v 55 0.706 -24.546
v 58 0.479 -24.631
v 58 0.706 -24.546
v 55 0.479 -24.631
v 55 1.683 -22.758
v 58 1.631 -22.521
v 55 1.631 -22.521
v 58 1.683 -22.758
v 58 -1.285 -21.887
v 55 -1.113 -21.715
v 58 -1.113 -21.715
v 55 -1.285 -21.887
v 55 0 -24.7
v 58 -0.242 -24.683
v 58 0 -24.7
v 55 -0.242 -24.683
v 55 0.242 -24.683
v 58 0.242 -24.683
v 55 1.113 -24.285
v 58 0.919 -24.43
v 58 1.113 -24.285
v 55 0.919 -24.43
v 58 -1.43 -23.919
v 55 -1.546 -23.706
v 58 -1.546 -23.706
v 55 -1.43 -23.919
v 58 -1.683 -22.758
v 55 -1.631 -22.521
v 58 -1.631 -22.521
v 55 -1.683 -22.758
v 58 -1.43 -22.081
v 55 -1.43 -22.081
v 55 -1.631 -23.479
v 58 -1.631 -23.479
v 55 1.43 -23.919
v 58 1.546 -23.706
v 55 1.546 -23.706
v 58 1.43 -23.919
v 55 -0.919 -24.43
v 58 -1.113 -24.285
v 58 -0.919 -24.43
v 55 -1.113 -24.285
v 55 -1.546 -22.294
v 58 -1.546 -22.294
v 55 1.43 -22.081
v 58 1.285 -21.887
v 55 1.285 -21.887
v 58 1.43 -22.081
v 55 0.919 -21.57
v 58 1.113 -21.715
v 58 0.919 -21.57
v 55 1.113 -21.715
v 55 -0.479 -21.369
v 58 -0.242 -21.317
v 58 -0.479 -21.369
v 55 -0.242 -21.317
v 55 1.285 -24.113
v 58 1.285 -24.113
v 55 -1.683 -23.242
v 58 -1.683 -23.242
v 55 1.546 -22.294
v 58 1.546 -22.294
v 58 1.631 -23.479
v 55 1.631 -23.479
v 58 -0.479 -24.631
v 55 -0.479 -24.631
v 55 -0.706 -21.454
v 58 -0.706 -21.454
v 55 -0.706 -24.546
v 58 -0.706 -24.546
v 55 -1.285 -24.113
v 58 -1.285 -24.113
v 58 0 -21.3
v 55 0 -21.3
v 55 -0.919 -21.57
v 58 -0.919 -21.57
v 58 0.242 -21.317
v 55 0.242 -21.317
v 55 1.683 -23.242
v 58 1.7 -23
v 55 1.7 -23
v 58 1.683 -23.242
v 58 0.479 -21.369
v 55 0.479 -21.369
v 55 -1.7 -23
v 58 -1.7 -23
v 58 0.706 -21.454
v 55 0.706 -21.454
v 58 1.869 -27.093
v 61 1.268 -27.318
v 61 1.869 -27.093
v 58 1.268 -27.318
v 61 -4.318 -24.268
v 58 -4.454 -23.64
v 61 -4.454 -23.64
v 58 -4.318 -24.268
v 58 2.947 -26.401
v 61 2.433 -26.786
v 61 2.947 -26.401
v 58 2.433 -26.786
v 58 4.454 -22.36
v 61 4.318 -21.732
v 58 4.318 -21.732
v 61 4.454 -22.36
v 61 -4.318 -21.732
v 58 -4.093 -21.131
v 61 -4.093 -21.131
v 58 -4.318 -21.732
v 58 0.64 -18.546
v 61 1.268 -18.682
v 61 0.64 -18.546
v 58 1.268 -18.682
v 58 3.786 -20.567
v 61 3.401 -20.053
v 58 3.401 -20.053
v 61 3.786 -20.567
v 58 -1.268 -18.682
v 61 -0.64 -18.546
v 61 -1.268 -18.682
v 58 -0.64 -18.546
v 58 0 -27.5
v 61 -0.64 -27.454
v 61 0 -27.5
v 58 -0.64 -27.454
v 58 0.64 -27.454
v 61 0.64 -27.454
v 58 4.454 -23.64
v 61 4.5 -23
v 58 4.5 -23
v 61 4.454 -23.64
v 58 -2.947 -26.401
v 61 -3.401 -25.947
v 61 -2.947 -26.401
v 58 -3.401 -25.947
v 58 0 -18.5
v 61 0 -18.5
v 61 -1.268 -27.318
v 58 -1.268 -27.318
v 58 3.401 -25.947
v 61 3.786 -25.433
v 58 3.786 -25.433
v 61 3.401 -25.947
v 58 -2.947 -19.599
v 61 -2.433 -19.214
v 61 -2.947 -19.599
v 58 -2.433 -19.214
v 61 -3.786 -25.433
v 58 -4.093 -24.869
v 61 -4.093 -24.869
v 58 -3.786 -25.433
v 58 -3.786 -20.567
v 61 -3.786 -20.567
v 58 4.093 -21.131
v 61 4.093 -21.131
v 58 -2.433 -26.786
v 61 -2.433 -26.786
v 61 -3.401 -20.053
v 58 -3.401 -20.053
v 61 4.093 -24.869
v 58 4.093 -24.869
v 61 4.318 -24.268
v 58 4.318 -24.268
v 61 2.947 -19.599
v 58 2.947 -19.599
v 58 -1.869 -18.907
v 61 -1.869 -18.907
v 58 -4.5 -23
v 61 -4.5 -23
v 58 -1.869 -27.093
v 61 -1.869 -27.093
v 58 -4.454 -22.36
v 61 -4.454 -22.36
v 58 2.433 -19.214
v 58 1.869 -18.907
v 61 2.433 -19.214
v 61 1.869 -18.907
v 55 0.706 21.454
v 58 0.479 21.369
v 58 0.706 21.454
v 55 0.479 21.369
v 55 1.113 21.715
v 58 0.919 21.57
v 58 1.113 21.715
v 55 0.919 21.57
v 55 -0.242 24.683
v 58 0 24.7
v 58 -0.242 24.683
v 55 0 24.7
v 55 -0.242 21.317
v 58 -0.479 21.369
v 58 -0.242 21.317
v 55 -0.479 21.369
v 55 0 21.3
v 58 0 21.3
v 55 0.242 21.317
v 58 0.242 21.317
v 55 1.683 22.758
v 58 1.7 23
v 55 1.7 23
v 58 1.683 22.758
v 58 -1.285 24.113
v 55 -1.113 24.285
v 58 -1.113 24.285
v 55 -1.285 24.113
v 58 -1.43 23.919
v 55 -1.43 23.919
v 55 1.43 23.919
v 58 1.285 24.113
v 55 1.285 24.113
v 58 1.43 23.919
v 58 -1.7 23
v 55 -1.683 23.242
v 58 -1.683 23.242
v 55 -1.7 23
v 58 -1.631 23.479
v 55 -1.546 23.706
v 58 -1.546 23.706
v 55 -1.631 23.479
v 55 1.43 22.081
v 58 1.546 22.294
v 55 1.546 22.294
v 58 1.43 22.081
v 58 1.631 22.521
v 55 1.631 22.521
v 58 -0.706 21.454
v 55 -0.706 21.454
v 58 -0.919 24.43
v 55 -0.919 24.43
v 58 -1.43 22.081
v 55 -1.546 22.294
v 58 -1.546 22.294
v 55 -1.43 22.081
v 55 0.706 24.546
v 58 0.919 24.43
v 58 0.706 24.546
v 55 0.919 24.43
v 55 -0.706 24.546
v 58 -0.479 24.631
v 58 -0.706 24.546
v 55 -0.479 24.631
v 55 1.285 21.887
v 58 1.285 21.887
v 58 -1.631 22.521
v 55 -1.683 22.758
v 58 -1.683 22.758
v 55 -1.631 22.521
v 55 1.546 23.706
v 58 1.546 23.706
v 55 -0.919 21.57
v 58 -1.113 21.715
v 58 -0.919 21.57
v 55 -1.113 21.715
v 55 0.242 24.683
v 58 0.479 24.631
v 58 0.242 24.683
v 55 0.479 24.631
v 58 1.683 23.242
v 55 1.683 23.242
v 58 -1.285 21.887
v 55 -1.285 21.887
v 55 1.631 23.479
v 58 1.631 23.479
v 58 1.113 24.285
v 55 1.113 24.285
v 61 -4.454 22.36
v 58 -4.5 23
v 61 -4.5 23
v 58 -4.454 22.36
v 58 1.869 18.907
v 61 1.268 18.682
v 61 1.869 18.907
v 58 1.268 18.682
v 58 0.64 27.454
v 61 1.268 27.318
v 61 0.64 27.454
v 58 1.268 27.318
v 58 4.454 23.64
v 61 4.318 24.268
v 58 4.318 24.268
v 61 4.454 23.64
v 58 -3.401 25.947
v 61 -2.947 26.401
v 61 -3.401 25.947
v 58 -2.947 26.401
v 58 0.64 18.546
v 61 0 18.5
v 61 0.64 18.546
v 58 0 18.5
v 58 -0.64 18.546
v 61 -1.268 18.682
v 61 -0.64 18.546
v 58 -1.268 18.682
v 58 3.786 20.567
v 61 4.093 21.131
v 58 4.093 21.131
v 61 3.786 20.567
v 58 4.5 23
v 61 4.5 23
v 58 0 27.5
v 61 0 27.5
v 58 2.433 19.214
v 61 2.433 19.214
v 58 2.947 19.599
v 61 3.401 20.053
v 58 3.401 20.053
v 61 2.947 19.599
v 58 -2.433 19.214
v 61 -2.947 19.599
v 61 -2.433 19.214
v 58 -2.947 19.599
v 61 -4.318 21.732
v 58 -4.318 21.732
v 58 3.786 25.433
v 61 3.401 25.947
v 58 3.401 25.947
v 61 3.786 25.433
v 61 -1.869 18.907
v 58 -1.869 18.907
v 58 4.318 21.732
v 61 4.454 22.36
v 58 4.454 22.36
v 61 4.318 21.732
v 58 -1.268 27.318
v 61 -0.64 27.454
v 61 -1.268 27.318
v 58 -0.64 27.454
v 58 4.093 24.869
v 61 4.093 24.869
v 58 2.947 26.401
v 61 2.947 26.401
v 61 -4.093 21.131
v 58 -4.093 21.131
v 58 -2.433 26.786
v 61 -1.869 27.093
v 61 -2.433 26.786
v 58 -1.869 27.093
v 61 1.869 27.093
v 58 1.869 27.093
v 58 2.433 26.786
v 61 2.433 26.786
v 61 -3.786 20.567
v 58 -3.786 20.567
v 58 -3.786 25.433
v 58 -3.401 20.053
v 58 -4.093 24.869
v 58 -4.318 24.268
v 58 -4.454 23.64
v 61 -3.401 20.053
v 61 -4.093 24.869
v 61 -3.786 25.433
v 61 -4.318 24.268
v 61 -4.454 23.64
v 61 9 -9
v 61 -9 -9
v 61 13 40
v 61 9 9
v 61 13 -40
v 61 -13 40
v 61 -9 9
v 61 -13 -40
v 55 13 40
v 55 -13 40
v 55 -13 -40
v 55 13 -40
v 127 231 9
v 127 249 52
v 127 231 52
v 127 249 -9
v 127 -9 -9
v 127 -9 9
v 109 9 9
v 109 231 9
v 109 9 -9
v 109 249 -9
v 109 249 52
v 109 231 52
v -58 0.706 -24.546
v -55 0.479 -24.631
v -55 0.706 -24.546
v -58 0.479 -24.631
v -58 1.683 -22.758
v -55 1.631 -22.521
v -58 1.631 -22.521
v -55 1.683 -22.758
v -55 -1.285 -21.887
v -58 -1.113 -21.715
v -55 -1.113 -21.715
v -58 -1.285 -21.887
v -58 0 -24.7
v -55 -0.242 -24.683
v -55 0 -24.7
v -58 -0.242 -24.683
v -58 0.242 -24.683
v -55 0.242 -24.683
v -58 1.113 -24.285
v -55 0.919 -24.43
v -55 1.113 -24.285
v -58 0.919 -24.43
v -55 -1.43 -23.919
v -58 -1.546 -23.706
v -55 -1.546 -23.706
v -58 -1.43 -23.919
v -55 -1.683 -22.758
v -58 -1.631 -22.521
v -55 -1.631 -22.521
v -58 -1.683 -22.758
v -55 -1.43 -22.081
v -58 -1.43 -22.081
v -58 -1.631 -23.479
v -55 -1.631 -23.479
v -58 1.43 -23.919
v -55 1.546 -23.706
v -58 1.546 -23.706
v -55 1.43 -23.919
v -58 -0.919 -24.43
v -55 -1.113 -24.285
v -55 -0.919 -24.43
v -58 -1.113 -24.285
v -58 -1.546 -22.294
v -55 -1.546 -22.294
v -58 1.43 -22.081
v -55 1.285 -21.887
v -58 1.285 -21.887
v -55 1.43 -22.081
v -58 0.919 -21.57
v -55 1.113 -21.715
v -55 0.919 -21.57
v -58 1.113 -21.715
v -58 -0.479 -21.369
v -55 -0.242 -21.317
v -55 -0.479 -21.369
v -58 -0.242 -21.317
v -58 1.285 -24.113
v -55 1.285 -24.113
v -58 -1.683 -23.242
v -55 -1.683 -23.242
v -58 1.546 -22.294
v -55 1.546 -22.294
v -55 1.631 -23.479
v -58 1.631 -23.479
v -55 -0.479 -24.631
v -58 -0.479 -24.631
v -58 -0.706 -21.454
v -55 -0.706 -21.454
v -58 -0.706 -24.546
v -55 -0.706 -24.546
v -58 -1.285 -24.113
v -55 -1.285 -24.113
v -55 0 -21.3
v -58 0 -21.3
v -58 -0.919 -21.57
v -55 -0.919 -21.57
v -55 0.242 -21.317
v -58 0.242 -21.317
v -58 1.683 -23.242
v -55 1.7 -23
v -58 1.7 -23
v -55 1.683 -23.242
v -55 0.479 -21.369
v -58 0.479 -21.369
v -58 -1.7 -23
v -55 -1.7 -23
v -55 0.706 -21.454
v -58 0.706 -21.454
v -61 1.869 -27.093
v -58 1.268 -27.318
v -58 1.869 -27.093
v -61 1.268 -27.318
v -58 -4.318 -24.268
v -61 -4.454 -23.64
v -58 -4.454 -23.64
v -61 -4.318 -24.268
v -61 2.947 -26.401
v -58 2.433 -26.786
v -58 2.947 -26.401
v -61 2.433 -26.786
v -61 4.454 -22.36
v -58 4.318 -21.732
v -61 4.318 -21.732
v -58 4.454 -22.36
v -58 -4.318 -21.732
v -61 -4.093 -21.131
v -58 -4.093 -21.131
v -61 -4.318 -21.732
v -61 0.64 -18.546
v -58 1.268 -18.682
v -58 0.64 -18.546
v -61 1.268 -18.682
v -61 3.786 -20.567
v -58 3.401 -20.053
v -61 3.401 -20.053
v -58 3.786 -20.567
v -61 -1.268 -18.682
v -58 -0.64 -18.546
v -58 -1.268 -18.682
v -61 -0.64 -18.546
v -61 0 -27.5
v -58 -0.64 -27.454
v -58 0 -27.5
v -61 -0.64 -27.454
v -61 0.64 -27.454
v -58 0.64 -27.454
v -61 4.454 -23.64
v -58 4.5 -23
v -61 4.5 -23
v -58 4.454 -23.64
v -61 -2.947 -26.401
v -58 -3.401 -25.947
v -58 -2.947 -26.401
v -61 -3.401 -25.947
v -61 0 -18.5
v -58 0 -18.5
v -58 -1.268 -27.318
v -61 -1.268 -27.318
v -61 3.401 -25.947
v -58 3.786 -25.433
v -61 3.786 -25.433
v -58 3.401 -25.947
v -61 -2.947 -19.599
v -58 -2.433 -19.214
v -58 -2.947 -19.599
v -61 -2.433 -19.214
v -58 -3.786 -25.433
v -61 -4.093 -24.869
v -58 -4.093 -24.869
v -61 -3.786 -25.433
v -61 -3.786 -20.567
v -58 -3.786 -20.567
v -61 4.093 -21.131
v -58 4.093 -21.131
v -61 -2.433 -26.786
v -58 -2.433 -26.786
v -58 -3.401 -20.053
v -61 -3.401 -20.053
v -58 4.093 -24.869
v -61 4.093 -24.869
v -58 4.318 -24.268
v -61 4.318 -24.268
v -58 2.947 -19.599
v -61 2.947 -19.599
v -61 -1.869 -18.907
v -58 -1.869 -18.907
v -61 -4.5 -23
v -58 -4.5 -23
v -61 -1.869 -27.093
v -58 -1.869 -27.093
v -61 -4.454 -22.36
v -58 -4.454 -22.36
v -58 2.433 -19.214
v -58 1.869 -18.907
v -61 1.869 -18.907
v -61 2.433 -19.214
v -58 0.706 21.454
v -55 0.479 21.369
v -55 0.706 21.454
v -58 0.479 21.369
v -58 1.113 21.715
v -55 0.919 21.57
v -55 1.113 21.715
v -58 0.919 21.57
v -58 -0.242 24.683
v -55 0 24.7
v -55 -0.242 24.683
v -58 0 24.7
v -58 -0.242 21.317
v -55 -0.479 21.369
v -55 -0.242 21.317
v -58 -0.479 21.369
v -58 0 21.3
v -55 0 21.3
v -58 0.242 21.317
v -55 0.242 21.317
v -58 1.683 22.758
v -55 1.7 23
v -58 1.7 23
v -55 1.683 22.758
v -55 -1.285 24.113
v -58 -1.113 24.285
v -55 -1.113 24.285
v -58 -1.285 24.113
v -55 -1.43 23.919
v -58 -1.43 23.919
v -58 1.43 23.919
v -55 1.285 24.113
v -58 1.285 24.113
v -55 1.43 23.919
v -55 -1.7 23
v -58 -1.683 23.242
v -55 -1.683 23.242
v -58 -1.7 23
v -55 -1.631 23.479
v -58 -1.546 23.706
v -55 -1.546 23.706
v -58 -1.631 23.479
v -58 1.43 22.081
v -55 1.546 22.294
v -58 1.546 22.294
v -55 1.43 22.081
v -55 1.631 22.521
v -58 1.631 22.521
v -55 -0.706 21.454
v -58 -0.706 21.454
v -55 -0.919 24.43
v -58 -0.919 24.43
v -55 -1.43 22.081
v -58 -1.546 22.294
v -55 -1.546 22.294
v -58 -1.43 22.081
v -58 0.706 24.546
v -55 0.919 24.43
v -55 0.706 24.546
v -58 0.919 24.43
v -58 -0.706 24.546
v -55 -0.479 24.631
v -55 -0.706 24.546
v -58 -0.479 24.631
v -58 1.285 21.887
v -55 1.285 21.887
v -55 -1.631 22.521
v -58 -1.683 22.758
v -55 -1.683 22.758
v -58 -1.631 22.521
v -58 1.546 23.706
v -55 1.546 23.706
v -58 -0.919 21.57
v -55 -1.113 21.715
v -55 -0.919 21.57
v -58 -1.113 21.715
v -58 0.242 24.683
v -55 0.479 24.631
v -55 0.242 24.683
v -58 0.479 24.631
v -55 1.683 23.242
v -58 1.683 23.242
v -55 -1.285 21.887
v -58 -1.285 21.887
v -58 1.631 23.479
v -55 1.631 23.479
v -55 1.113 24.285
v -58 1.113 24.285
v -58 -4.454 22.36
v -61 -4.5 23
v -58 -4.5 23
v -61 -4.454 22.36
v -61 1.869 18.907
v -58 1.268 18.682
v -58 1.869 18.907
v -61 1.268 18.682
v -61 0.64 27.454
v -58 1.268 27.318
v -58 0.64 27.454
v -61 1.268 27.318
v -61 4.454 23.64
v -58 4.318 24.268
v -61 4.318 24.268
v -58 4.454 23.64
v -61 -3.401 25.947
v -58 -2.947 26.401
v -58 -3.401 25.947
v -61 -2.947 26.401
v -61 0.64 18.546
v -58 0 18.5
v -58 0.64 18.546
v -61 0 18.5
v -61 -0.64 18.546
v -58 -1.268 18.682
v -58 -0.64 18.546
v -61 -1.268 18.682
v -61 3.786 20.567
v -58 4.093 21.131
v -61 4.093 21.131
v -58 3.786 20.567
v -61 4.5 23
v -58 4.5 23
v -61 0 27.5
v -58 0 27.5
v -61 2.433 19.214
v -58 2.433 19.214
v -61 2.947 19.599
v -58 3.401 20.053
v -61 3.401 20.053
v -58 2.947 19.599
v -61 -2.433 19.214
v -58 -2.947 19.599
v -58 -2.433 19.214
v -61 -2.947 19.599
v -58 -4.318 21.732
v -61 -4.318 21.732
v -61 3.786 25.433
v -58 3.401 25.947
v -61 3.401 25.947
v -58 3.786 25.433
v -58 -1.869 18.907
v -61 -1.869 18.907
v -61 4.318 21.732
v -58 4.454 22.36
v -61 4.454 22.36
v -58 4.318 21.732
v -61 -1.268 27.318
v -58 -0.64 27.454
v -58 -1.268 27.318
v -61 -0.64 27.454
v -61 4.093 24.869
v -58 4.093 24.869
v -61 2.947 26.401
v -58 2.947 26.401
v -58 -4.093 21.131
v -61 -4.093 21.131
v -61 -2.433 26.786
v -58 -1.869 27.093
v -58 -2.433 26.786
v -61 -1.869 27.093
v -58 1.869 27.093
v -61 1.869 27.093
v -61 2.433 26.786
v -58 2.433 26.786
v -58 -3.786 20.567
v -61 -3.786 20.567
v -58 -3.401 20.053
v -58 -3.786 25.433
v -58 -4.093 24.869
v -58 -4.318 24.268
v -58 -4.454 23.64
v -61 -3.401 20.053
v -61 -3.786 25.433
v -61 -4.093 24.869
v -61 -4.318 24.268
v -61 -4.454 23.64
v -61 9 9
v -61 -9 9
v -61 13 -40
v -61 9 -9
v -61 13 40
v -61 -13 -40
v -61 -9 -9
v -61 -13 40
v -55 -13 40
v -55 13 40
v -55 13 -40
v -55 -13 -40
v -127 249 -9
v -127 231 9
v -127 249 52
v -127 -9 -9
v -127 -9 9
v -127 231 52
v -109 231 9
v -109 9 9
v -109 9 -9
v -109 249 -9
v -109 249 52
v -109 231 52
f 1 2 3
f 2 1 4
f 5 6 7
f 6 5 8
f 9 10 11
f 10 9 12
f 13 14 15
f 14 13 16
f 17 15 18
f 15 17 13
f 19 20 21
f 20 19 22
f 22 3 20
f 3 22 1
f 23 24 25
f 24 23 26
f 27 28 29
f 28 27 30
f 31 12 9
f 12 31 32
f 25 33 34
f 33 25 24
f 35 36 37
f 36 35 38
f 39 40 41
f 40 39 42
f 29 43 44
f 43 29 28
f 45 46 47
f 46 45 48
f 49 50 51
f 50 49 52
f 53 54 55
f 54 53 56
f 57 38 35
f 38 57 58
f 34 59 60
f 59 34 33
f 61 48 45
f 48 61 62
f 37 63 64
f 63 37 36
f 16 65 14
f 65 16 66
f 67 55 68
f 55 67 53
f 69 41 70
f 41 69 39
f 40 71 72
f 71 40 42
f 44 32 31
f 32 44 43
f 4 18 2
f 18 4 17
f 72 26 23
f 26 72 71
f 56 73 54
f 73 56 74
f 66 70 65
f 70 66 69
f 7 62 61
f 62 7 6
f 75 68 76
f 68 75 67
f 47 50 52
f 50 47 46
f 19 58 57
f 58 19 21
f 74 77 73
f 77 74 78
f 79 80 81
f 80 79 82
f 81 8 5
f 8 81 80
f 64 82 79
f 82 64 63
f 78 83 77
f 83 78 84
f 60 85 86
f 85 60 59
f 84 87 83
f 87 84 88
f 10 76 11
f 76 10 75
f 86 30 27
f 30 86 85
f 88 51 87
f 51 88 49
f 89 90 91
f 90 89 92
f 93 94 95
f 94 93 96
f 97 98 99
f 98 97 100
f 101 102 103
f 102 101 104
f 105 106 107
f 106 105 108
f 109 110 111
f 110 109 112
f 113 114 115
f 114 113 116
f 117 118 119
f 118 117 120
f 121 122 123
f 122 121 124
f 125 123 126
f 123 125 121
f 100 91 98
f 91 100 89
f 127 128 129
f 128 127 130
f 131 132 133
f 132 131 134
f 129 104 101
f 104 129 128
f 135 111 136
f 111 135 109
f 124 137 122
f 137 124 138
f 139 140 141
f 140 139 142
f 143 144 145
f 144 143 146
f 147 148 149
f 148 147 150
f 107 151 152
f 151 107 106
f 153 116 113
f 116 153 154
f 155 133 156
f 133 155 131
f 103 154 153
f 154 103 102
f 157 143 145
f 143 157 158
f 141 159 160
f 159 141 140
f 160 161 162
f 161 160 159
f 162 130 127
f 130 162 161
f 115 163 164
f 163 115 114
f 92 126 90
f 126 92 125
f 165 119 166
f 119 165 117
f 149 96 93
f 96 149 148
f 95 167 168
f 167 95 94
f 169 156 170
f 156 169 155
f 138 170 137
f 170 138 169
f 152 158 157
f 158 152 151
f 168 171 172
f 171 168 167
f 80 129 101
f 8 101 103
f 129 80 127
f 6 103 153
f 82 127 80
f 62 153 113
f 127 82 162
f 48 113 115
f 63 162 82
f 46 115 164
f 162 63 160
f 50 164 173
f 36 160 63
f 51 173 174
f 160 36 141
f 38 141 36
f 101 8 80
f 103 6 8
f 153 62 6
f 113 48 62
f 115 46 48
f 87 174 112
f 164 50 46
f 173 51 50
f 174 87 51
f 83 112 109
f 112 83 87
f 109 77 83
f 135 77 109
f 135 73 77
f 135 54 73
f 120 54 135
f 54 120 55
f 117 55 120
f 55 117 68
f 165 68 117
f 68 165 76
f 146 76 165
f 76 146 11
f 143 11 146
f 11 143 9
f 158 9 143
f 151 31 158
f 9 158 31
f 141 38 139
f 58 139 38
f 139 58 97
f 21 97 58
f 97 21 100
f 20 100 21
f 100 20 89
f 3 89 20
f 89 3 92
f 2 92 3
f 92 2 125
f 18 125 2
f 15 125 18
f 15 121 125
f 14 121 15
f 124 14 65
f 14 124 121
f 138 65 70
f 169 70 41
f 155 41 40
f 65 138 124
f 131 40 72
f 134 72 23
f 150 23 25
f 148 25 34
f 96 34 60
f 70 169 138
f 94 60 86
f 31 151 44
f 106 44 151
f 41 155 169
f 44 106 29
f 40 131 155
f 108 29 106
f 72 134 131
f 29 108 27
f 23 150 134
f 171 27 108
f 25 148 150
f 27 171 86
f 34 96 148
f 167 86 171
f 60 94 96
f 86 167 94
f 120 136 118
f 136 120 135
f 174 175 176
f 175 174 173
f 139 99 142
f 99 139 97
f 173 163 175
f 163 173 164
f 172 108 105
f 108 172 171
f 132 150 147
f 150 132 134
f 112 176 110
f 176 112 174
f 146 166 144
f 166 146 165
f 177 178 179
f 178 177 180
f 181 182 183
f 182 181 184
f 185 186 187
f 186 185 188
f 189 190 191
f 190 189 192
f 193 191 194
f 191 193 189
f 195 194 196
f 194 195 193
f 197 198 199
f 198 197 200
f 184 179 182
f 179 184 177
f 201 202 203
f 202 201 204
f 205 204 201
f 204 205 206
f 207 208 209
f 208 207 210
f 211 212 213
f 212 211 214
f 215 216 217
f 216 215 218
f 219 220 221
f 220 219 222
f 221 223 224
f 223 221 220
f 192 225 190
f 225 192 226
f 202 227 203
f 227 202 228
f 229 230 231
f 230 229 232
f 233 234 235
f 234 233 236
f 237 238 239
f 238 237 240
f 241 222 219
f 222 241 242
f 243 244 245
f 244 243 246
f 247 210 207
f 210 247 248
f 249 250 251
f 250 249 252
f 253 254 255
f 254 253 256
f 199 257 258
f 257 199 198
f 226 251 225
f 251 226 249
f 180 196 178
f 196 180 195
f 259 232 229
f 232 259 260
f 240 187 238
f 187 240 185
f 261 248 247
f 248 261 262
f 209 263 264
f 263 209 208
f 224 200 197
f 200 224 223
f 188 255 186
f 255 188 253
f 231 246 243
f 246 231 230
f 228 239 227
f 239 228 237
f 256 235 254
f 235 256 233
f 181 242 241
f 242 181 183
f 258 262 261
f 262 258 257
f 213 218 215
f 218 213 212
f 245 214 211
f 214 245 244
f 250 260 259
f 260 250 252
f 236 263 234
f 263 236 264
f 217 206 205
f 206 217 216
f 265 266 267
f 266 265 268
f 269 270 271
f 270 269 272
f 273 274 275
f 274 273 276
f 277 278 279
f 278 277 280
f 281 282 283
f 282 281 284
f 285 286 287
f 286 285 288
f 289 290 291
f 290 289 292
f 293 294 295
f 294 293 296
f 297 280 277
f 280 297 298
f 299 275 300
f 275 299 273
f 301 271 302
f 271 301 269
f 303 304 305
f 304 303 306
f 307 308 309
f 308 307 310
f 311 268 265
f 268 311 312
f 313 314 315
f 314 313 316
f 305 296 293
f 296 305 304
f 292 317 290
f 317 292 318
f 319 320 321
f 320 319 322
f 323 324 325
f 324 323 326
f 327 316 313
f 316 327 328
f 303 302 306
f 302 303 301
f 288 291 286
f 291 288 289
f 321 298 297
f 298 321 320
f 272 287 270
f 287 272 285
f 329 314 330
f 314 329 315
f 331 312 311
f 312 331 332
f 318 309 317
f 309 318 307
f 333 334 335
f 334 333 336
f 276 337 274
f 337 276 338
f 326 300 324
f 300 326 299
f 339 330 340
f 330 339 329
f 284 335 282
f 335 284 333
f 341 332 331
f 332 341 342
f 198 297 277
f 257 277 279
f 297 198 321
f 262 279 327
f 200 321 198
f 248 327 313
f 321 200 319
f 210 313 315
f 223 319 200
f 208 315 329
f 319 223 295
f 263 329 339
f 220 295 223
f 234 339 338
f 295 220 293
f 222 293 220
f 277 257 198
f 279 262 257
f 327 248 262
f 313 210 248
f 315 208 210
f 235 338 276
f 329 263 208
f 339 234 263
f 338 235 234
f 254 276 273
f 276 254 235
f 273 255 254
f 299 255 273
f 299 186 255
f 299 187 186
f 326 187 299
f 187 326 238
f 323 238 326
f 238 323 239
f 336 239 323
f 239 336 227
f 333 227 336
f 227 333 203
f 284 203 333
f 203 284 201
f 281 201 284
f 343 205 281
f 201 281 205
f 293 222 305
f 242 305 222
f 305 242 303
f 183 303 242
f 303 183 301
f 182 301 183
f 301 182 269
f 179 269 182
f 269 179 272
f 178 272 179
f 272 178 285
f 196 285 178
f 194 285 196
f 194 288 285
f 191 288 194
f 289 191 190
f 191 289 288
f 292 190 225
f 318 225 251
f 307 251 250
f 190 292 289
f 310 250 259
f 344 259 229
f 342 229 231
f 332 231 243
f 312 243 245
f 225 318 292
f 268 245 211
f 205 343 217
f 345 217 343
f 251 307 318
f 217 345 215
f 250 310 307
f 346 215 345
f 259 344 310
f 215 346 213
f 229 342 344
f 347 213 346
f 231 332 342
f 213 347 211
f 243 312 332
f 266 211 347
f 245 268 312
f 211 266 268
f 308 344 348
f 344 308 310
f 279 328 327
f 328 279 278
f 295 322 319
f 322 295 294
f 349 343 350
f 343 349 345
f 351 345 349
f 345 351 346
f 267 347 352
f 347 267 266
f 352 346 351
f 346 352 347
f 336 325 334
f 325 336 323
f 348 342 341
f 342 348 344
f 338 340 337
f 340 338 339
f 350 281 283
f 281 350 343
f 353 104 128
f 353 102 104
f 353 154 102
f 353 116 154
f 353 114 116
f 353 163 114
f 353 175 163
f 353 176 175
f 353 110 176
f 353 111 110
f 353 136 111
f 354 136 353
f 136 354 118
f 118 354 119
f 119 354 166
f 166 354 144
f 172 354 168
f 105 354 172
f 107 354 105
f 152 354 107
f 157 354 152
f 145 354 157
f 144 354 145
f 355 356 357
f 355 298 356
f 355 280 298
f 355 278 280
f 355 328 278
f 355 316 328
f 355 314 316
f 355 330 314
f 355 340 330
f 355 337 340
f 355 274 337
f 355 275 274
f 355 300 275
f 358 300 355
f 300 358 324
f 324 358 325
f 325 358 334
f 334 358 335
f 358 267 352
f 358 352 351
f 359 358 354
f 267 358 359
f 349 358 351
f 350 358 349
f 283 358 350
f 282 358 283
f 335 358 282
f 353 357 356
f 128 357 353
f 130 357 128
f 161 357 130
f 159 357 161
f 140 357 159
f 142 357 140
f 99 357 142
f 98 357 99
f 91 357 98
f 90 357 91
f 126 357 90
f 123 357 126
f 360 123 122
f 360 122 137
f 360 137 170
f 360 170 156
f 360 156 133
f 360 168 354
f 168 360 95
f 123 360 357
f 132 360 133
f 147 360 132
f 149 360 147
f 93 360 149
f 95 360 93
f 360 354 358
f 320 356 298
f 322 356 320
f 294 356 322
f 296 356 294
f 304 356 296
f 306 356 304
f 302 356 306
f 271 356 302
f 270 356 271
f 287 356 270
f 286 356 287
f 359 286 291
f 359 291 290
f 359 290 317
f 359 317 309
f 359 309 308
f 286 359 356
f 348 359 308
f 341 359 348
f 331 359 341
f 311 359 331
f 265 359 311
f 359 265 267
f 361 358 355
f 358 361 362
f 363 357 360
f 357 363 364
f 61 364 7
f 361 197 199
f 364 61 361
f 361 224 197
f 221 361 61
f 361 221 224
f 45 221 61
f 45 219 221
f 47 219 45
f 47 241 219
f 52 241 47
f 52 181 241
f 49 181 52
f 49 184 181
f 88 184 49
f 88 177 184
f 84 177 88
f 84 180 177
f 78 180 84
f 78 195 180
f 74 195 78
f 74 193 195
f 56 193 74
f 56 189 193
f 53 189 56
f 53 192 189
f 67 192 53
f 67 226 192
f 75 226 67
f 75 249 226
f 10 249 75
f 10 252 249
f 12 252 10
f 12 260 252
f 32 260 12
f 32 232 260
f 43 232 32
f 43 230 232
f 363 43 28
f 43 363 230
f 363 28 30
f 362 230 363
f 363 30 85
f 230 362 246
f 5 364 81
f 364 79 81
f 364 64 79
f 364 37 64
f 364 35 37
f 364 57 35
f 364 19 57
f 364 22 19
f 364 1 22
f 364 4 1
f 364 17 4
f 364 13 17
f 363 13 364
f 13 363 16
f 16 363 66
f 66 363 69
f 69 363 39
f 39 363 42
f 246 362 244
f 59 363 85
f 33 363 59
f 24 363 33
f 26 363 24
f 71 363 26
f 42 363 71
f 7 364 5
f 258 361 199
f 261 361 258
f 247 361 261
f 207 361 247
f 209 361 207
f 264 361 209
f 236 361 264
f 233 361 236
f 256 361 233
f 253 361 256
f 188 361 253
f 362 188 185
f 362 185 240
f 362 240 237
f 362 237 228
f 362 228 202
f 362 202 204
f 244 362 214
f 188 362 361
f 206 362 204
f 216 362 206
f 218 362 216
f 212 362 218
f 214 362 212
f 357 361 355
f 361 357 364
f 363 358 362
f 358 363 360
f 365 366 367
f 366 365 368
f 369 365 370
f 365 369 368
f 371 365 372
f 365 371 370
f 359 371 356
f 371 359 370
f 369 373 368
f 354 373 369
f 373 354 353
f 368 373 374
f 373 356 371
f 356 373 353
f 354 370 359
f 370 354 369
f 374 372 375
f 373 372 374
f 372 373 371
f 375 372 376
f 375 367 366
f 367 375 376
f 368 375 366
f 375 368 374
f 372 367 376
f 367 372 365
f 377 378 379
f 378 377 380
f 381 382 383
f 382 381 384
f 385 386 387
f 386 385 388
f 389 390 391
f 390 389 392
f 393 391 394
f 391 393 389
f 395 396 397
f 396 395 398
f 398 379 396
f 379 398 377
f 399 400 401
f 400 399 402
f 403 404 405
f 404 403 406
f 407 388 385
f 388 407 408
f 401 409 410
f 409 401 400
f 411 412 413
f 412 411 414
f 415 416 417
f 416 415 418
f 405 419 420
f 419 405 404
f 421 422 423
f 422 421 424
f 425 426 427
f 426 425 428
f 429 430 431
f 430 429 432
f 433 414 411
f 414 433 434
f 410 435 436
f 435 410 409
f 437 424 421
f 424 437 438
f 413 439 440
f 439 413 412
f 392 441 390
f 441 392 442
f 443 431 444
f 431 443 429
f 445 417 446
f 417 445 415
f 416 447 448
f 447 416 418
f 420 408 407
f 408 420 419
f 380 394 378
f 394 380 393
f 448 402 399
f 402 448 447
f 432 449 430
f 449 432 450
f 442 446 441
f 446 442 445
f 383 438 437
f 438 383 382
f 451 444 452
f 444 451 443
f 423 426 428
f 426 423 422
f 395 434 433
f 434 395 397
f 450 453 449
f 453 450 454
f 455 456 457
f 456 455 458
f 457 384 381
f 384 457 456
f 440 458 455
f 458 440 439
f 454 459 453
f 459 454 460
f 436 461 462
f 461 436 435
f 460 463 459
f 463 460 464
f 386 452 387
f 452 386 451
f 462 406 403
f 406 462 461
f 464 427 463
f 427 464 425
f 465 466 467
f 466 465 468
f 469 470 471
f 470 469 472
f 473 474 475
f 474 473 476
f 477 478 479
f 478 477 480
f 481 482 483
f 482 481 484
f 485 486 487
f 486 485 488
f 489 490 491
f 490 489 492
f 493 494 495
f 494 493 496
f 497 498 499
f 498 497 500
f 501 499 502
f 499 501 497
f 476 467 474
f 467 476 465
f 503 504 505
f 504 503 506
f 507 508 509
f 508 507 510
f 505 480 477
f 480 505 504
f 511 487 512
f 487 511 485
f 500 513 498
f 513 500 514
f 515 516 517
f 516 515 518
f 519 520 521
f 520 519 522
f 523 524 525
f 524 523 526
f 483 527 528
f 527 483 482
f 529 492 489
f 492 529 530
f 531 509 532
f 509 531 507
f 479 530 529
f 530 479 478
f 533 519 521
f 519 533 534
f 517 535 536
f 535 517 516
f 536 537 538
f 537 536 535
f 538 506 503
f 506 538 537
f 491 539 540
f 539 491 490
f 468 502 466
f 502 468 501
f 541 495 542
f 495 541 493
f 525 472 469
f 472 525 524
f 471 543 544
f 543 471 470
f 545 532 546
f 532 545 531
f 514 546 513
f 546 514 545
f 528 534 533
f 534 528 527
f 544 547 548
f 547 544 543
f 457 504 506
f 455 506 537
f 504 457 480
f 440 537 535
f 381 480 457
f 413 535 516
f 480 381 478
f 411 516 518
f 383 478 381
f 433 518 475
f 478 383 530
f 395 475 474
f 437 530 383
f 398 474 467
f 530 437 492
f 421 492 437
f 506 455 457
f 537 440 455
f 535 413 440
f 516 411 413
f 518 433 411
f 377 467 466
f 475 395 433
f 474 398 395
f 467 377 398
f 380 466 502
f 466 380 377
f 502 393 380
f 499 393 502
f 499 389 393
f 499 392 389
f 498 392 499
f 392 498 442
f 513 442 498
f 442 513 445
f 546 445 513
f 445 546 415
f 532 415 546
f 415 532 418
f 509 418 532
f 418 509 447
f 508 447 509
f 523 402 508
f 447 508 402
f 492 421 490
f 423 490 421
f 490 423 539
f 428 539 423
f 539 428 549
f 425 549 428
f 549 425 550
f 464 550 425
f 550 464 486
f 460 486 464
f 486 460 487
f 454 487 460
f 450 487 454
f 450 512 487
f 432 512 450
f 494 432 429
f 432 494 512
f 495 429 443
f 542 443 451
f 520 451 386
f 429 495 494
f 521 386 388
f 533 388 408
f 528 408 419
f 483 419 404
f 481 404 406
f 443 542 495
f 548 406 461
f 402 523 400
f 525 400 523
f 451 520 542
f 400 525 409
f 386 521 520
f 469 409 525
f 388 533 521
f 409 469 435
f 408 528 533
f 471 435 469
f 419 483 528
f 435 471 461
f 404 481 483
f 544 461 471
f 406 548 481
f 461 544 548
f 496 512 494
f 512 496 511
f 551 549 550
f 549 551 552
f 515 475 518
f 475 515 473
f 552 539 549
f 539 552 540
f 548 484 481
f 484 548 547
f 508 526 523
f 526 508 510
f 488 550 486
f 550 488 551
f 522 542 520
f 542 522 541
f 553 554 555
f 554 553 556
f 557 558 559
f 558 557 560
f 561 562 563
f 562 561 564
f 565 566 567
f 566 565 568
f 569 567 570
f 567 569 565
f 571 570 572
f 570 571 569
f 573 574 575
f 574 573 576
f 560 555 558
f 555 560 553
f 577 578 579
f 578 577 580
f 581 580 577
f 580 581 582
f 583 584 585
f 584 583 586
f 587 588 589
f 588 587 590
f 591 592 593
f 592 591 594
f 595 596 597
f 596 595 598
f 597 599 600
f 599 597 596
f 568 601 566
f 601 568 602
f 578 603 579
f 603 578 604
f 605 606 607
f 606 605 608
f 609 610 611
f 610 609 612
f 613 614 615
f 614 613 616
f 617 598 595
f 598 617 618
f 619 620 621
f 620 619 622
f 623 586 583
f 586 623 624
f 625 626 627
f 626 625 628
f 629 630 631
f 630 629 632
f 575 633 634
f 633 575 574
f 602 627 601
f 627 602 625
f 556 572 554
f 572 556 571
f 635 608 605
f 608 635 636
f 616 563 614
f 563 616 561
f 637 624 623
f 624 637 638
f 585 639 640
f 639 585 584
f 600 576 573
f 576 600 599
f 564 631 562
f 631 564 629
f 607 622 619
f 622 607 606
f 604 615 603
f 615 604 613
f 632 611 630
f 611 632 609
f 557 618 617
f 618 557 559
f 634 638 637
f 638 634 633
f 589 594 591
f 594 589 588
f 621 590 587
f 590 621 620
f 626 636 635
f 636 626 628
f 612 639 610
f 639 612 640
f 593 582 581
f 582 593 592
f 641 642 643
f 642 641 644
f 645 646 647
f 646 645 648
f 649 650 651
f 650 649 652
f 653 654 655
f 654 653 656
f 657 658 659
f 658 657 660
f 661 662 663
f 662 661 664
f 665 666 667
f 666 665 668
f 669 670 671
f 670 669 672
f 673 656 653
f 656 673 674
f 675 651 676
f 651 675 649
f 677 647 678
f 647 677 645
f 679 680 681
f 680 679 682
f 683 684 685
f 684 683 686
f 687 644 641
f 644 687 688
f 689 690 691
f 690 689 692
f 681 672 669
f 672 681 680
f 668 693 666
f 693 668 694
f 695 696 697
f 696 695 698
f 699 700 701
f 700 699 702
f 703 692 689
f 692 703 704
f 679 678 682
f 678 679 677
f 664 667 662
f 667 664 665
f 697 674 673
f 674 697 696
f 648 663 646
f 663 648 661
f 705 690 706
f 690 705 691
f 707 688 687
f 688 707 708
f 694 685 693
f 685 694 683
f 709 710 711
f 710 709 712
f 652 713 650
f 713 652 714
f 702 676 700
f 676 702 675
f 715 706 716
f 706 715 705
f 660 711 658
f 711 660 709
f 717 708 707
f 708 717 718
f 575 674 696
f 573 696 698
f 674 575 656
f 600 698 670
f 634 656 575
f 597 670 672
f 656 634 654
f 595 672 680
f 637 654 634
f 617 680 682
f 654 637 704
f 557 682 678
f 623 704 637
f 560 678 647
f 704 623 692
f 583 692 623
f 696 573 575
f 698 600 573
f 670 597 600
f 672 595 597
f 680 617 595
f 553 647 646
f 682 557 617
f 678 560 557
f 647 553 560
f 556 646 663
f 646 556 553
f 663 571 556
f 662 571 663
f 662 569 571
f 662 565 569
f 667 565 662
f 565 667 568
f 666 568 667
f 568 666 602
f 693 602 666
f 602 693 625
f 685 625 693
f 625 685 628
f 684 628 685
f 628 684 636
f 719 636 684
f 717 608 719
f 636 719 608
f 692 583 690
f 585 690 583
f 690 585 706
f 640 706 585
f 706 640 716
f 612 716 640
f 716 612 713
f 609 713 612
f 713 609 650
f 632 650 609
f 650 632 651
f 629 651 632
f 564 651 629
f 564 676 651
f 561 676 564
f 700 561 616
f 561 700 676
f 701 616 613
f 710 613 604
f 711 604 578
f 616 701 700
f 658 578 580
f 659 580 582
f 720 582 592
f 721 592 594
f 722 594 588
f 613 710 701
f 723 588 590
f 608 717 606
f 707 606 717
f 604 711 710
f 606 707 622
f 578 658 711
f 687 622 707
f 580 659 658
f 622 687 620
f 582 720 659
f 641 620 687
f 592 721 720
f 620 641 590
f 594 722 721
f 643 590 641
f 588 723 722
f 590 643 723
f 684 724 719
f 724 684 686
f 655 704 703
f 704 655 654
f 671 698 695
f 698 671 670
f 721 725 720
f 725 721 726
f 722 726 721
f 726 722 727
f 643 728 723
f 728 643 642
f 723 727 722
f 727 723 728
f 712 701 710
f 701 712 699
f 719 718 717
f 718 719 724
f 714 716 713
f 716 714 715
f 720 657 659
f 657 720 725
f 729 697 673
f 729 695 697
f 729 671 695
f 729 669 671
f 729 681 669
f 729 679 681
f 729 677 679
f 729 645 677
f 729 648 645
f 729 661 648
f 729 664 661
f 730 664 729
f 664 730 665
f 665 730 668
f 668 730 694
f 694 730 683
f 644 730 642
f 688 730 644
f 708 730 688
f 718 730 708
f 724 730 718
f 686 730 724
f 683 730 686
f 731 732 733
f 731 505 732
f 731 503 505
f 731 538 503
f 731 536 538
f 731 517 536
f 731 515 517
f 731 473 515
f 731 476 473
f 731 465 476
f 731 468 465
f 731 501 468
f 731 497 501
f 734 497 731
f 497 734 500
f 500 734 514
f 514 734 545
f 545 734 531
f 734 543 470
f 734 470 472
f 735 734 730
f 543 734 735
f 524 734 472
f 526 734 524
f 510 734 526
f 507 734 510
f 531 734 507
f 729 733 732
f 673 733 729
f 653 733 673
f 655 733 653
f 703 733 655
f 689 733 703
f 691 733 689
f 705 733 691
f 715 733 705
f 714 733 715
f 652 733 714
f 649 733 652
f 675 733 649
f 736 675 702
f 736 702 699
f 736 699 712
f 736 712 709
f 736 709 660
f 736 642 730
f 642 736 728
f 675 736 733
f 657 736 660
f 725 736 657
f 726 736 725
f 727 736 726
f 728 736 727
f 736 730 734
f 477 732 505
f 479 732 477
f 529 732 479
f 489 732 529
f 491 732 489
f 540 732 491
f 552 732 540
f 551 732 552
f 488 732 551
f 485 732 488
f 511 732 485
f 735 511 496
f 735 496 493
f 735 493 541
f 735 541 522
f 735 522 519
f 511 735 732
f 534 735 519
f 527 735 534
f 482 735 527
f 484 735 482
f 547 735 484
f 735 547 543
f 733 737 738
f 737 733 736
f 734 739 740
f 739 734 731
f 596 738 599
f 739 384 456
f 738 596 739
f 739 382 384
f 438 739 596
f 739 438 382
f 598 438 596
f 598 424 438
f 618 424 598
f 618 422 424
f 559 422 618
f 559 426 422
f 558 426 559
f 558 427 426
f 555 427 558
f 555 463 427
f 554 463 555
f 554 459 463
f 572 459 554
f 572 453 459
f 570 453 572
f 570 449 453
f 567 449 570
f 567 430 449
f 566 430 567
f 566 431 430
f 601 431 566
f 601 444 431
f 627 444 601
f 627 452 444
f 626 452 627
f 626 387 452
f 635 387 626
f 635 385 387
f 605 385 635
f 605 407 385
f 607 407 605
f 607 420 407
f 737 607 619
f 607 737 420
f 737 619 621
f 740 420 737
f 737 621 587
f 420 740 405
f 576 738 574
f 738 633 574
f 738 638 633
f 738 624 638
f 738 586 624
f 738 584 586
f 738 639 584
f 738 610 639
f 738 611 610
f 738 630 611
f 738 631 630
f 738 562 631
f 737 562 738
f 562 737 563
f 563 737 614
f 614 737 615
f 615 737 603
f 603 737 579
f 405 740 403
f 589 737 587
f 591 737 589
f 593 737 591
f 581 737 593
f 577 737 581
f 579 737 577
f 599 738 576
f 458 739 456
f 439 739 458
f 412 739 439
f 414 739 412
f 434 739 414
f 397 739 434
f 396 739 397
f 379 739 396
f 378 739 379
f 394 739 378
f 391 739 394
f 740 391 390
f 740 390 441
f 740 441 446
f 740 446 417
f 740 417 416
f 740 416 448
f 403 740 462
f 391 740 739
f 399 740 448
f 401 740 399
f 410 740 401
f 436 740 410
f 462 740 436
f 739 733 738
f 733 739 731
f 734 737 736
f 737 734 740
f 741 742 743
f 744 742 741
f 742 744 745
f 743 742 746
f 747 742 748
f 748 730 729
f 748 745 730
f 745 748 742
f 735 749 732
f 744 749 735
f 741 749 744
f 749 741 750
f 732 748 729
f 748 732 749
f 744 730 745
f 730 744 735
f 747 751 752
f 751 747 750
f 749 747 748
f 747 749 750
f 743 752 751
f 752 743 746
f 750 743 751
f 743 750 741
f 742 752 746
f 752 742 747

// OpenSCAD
// handles.scad - self-contained, renders ONLY the handles (v4.4)
// =====================================================================
//  HANDHELD/ROVER RIG  v3.9
//  mmWave mount MATCHED TO THE ZED: the board bolts to a full-width plate
//  fused into both side walls (same scheme as the ZED plate), not through
//  the front wall. Antenna shows through the front window. Screws = M3
//  through the board into the plate, washer seat on the back (like ZED).
//
//  METROLOGY (all from official files, unchanged):
//   DCA1000EVM holes 4x dia4.32 @ 76.30x56.89   (TI SPRR350 STEP)
//   IWR1443BOOST holes 4x dia4.06 (0.160") @ 75.55x56.90  (TI SPRR253 NPTH.drl)
//   DCA board 90x102x1.6 (SPRUIJ4A); stack depth ~28-30, plate at DCA back.
//   ZED 2i 175.25x30.25x43.1, back mount 4x M3 @153.4x14 (Stereolabs drawing).
//   Jetson AGX dev kit 105x105x65, mount 4x M3 @97x97 (NVIDIA).
//  All enclosure holes are M3 CLEARANCE (3.4) for screw + washer + nut or a
//  heat-set insert; 3D-printed threads are intentionally not modeled.
//  Frame: +X right, +Y back, +Z up. FRONT=Y=0. X=0 = center between ZED eyes.
// =====================================================================
$fn=44; eps=0.8; inch=25.4;
wall=5; floor_th=4; edge=8; win_r=6; clr=1.5; pt=2.5;
m3=3.4; cb_d=7; cb_h=2.5; boss_od=8; insert_h=6; ins_d=4.2;
plate_t=3; wash_d=8; wash_h=2.0;
nut_hex=6.6; nut_th=2.6; wcb_d=9; wcb_h=3;

ant_off = 19;   // antenna offset from board center; board flipped so antenna lands on X=0

// ---- COMPONENTS ----
zed_w=175.25; zed_h=30.25; zed_d=43.1; zed_base=120;
rad_w=90; rad_h=102; rad_d=34; ant_win=32;            // DCA1000 90x102; stack depth 34
agx_w=105; agx_d=105; agx_h=65; agx_so=6; agx_mt=97;
jack_gap=42; rad_stick=8;                              // board protrudes 8 out front (antenna near window)
zed_conn_w=40; zed_conn_h=22;
rad_hole_dx=76.30;   // horizontal (X)  DCA1000 hole pitch (TI SPRR350 STEP)
rad_hole_dy=56.89;   // vertical   (Z)  DCA1000 hole pitch (TI SPRR350 STEP)
cord_gap=63.5;   // 2.5 in front clearance (AGX front to ZED)

// ---- width ----
half = max(zed_w/2, ant_off + rad_hole_dx/2) + edge; IW = 2*half; OW = IW + 2*wall;
// ---- heights ----
agx_top=floor_th+agx_so+agx_h;
zed_z0=floor_th+10; zed_cz=zed_z0+zed_h/2;   // ZED near the base (was tied to AGX top; AGX is behind, not below)
rad_z0=zed_z0+zed_h+jack_gap; rad_cz=rad_z0+rad_h/2;
OH=rad_cz+(rad_hole_dy+22)/2+8;          // clear the mmWave plate top
// ---- depth ----
zed_y0=wall; zed_back=zed_y0+zed_d; rad_back=-rad_stick+rad_d;   // plate at the DCA back
agx_rear=63.5;   // 2.5 in back clearance (both sides 2.5 in; no HDMI bend needed)
agx_cy=zed_back+cord_gap+agx_d/2; OD=agx_cy+agx_d/2+agx_rear+wall;
rad_cx=-ant_off;   // flipped: board bulk to opposite side; antenna stays on X0 (ZED center)

hm_dz=46; handle_reach=72; hsec=18; grip_rise=52; grip_back=240;   // grab bar 240mm long; reach 72 = 54mm hand clearance
handle_y=(OD-grip_back)/2; handle_z=OH*0.52;   // grab bar centered along box length

// =====================================================================
module rbox(w,d,h,r=4){ hull() for(x=[r,w-r],y=[r,d-r]) translate([x,y,0]) cylinder(r=r,h=h); }
module holes4(dx,dy){ for(x=[-dx/2,dx/2],y=[-dy/2,dy/2]) translate([x,y,0]) children(); }
module ycut(w,h,depth,r){ hull() for(a=[-1,1],b=[-1,1]) translate([a*(w/2-r),0,b*(h/2-r)]) rotate([-90,0,0]) cylinder(r=r,h=depth); }

module shell(){ translate([-OW/2,0,0]) rbox(OW,OD,OH,8); }
module cavity(){ translate([-IW/2,wall,floor_th]) rbox(IW,OD-2*wall,OH+eps,4); }

// ---- mmWave: front antenna window + REAR PLATE (same scheme as the ZED plate) ----
module rad_window(){ translate([rad_cx,-eps,rad_cz]) ycut(rad_w+clr, rad_h+clr, wall+rad_stick+2*eps, 10); } // whole 90x102 board shows; antenna at X=0
module rad_plate(){
    fh=rad_hole_dy+22; py=rad_back;
    difference(){
        translate([-IW/2-2, py, rad_cz-fh/2]) cube([IW+4, plate_t, fh]);                                                     // full-width plate, fused into both side walls
        translate([rad_cx, py-eps, rad_cz]) rotate([-90,0,0]) holes4(rad_hole_dx,rad_hole_dy) cylinder(d=m3,h=plate_t+2*eps); // 4x M3 @ 76.30x56.89 (DCA holes)
        translate([rad_cx, py+plate_t-wash_h, rad_cz]) rotate([-90,0,0]) holes4(rad_hole_dx,rad_hole_dy) cylinder(d=wash_d,h=wash_h+eps); // washer seat on the back
    }
}

module zed_window(){ translate([0,-eps,zed_cz]) ycut(zed_base+44, zed_h-2, wall+2*eps, 6); }
zed_mt_dx=153.4; zed_mt_dz=14;   // ZED 2i back mount: 4x M3 (dia3.13) at 153.4 x 14 [Stereolabs drawing]
module zed_plate(){
    fh=zed_h+18; py=zed_back;
    difference(){
        translate([-IW/2-2, py, zed_cz-fh/2]) cube([IW+4, plate_t, fh]);
        translate([-zed_conn_w/2, py-eps, zed_cz-zed_conn_h/2]) cube([zed_conn_w, plate_t+2*eps, zed_conn_h]);
        translate([0, py-eps, zed_cz]) rotate([-90,0,0]) holes4(zed_mt_dx, zed_mt_dz) cylinder(d=m3,h=plate_t+2*eps);
        translate([0, py+plate_t-wash_h, zed_cz]) rotate([-90,0,0]) holes4(zed_mt_dx, zed_mt_dz) cylinder(d=wash_d,h=wash_h+eps);
    }
}
module agx_screws(){ translate([0,agx_cy,-eps]) holes4(agx_mt,agx_mt) cylinder(d=m3,h=floor_th+agx_so+2*eps);
                     translate([0,agx_cy,-eps]) holes4(agx_mt,agx_mt) cylinder(d=wcb_d,h=wcb_h); }
module agx_mount(){ translate([0,agx_cy,floor_th]) holes4(agx_mt,agx_mt) difference(){
        cylinder(d=boss_od,h=agx_so); translate([0,0,-1]) cylinder(d=m3,h=agx_so+2); } }
module rear_cables(){ translate([0,OD-wall-eps,floor_th+20]) ycut(104,30,wall+2*eps,8); }   // ~AGX board width
module handle_mounts(){ for(s=[-1,1]) for(dz=[-hm_dz/2,hm_dz/2]) translate([s*(OW/2+eps),handle_y,handle_z+dz]) rotate([0,-90*s,0]) cylinder(d=m3,h=wall+2*eps); }
module handle_nuts(){ for(s=[-1,1]) for(dz=[-hm_dz/2,hm_dz/2])
    translate([s*(IW/2),handle_y,handle_z+dz]) rotate([0,90*s,0]) difference(){
        cylinder(d=12,h=7); translate([0,0,-eps]) cylinder(d=m3,h=8);
        translate([0,0,7-nut_th]) cylinder(d=nut_hex,h=nut_th+1,$fn=6); } }

module box_body(){
    union(){
        difference(){
            shell(); cavity();
            rad_window(); zed_window(); rear_cables(); agx_screws(); handle_mounts();
        }
        agx_mount(); handle_nuts(); rad_plate(); zed_plate();
    }
}

module handle(){
    ft=6; fw=26; fh=hm_dz+34;
    difference(){
        translate([0,-fw/2,-fh/2]) cube([ft,fw,fh]);
        for(dz=[-hm_dz/2,hm_dz/2]){
            translate([-eps,0,dz]) rotate([0,90,0]) cylinder(d=m3,h=ft+2*eps);
            translate([ft-wcb_h,0,dz]) rotate([0,90,0]) cylinder(d=wcb_d,h=wcb_h+eps);
        }
    }
    translate([ft-1,-hsec/2,-hsec/2]) cube([handle_reach-ft+1, hsec, hsec]);
    translate([handle_reach-hsec,-hsec/2,-hsec/2]) cube([hsec, grip_back+hsec/2, hsec]);
    translate([handle_reach-hsec, grip_back-hsec/2,-hsec/2]) cube([hsec, hsec, grip_rise+hsec/2]);
}
module handles(){ translate([55,0,0]) handle(); translate([-55,0,0]) mirror([1,0,0]) handle(); }

module gc(){
    color([0.6,0.1,0.1]) translate([rad_cx-rad_w/2,-rad_stick,rad_cz-rad_h/2]) cube([rad_w,rad_d,rad_h]);
    color([0.1,0.1,0.12]) translate([-zed_w/2,zed_y0,zed_cz-zed_h/2]) cube([zed_w,zed_d,zed_h]);
    color([0.2,0.2,0.24]) translate([-agx_w/2,agx_cy-agx_d/2,floor_th+agx_so]) cube([agx_w,agx_d,agx_h]);
    color([0.9,0.85,0.4]) translate([-ant_win/2,-rad_stick-1.5,rad_cz-ant_win/2]) cube([ant_win,2,ant_win]);
}
module assembly(){
    box_body();
    translate([ OW/2,handle_y,handle_z]) handle();
    translate([-OW/2,handle_y,handle_z]) mirror([1,0,0]) handle();
    %gc();
}

handles();
